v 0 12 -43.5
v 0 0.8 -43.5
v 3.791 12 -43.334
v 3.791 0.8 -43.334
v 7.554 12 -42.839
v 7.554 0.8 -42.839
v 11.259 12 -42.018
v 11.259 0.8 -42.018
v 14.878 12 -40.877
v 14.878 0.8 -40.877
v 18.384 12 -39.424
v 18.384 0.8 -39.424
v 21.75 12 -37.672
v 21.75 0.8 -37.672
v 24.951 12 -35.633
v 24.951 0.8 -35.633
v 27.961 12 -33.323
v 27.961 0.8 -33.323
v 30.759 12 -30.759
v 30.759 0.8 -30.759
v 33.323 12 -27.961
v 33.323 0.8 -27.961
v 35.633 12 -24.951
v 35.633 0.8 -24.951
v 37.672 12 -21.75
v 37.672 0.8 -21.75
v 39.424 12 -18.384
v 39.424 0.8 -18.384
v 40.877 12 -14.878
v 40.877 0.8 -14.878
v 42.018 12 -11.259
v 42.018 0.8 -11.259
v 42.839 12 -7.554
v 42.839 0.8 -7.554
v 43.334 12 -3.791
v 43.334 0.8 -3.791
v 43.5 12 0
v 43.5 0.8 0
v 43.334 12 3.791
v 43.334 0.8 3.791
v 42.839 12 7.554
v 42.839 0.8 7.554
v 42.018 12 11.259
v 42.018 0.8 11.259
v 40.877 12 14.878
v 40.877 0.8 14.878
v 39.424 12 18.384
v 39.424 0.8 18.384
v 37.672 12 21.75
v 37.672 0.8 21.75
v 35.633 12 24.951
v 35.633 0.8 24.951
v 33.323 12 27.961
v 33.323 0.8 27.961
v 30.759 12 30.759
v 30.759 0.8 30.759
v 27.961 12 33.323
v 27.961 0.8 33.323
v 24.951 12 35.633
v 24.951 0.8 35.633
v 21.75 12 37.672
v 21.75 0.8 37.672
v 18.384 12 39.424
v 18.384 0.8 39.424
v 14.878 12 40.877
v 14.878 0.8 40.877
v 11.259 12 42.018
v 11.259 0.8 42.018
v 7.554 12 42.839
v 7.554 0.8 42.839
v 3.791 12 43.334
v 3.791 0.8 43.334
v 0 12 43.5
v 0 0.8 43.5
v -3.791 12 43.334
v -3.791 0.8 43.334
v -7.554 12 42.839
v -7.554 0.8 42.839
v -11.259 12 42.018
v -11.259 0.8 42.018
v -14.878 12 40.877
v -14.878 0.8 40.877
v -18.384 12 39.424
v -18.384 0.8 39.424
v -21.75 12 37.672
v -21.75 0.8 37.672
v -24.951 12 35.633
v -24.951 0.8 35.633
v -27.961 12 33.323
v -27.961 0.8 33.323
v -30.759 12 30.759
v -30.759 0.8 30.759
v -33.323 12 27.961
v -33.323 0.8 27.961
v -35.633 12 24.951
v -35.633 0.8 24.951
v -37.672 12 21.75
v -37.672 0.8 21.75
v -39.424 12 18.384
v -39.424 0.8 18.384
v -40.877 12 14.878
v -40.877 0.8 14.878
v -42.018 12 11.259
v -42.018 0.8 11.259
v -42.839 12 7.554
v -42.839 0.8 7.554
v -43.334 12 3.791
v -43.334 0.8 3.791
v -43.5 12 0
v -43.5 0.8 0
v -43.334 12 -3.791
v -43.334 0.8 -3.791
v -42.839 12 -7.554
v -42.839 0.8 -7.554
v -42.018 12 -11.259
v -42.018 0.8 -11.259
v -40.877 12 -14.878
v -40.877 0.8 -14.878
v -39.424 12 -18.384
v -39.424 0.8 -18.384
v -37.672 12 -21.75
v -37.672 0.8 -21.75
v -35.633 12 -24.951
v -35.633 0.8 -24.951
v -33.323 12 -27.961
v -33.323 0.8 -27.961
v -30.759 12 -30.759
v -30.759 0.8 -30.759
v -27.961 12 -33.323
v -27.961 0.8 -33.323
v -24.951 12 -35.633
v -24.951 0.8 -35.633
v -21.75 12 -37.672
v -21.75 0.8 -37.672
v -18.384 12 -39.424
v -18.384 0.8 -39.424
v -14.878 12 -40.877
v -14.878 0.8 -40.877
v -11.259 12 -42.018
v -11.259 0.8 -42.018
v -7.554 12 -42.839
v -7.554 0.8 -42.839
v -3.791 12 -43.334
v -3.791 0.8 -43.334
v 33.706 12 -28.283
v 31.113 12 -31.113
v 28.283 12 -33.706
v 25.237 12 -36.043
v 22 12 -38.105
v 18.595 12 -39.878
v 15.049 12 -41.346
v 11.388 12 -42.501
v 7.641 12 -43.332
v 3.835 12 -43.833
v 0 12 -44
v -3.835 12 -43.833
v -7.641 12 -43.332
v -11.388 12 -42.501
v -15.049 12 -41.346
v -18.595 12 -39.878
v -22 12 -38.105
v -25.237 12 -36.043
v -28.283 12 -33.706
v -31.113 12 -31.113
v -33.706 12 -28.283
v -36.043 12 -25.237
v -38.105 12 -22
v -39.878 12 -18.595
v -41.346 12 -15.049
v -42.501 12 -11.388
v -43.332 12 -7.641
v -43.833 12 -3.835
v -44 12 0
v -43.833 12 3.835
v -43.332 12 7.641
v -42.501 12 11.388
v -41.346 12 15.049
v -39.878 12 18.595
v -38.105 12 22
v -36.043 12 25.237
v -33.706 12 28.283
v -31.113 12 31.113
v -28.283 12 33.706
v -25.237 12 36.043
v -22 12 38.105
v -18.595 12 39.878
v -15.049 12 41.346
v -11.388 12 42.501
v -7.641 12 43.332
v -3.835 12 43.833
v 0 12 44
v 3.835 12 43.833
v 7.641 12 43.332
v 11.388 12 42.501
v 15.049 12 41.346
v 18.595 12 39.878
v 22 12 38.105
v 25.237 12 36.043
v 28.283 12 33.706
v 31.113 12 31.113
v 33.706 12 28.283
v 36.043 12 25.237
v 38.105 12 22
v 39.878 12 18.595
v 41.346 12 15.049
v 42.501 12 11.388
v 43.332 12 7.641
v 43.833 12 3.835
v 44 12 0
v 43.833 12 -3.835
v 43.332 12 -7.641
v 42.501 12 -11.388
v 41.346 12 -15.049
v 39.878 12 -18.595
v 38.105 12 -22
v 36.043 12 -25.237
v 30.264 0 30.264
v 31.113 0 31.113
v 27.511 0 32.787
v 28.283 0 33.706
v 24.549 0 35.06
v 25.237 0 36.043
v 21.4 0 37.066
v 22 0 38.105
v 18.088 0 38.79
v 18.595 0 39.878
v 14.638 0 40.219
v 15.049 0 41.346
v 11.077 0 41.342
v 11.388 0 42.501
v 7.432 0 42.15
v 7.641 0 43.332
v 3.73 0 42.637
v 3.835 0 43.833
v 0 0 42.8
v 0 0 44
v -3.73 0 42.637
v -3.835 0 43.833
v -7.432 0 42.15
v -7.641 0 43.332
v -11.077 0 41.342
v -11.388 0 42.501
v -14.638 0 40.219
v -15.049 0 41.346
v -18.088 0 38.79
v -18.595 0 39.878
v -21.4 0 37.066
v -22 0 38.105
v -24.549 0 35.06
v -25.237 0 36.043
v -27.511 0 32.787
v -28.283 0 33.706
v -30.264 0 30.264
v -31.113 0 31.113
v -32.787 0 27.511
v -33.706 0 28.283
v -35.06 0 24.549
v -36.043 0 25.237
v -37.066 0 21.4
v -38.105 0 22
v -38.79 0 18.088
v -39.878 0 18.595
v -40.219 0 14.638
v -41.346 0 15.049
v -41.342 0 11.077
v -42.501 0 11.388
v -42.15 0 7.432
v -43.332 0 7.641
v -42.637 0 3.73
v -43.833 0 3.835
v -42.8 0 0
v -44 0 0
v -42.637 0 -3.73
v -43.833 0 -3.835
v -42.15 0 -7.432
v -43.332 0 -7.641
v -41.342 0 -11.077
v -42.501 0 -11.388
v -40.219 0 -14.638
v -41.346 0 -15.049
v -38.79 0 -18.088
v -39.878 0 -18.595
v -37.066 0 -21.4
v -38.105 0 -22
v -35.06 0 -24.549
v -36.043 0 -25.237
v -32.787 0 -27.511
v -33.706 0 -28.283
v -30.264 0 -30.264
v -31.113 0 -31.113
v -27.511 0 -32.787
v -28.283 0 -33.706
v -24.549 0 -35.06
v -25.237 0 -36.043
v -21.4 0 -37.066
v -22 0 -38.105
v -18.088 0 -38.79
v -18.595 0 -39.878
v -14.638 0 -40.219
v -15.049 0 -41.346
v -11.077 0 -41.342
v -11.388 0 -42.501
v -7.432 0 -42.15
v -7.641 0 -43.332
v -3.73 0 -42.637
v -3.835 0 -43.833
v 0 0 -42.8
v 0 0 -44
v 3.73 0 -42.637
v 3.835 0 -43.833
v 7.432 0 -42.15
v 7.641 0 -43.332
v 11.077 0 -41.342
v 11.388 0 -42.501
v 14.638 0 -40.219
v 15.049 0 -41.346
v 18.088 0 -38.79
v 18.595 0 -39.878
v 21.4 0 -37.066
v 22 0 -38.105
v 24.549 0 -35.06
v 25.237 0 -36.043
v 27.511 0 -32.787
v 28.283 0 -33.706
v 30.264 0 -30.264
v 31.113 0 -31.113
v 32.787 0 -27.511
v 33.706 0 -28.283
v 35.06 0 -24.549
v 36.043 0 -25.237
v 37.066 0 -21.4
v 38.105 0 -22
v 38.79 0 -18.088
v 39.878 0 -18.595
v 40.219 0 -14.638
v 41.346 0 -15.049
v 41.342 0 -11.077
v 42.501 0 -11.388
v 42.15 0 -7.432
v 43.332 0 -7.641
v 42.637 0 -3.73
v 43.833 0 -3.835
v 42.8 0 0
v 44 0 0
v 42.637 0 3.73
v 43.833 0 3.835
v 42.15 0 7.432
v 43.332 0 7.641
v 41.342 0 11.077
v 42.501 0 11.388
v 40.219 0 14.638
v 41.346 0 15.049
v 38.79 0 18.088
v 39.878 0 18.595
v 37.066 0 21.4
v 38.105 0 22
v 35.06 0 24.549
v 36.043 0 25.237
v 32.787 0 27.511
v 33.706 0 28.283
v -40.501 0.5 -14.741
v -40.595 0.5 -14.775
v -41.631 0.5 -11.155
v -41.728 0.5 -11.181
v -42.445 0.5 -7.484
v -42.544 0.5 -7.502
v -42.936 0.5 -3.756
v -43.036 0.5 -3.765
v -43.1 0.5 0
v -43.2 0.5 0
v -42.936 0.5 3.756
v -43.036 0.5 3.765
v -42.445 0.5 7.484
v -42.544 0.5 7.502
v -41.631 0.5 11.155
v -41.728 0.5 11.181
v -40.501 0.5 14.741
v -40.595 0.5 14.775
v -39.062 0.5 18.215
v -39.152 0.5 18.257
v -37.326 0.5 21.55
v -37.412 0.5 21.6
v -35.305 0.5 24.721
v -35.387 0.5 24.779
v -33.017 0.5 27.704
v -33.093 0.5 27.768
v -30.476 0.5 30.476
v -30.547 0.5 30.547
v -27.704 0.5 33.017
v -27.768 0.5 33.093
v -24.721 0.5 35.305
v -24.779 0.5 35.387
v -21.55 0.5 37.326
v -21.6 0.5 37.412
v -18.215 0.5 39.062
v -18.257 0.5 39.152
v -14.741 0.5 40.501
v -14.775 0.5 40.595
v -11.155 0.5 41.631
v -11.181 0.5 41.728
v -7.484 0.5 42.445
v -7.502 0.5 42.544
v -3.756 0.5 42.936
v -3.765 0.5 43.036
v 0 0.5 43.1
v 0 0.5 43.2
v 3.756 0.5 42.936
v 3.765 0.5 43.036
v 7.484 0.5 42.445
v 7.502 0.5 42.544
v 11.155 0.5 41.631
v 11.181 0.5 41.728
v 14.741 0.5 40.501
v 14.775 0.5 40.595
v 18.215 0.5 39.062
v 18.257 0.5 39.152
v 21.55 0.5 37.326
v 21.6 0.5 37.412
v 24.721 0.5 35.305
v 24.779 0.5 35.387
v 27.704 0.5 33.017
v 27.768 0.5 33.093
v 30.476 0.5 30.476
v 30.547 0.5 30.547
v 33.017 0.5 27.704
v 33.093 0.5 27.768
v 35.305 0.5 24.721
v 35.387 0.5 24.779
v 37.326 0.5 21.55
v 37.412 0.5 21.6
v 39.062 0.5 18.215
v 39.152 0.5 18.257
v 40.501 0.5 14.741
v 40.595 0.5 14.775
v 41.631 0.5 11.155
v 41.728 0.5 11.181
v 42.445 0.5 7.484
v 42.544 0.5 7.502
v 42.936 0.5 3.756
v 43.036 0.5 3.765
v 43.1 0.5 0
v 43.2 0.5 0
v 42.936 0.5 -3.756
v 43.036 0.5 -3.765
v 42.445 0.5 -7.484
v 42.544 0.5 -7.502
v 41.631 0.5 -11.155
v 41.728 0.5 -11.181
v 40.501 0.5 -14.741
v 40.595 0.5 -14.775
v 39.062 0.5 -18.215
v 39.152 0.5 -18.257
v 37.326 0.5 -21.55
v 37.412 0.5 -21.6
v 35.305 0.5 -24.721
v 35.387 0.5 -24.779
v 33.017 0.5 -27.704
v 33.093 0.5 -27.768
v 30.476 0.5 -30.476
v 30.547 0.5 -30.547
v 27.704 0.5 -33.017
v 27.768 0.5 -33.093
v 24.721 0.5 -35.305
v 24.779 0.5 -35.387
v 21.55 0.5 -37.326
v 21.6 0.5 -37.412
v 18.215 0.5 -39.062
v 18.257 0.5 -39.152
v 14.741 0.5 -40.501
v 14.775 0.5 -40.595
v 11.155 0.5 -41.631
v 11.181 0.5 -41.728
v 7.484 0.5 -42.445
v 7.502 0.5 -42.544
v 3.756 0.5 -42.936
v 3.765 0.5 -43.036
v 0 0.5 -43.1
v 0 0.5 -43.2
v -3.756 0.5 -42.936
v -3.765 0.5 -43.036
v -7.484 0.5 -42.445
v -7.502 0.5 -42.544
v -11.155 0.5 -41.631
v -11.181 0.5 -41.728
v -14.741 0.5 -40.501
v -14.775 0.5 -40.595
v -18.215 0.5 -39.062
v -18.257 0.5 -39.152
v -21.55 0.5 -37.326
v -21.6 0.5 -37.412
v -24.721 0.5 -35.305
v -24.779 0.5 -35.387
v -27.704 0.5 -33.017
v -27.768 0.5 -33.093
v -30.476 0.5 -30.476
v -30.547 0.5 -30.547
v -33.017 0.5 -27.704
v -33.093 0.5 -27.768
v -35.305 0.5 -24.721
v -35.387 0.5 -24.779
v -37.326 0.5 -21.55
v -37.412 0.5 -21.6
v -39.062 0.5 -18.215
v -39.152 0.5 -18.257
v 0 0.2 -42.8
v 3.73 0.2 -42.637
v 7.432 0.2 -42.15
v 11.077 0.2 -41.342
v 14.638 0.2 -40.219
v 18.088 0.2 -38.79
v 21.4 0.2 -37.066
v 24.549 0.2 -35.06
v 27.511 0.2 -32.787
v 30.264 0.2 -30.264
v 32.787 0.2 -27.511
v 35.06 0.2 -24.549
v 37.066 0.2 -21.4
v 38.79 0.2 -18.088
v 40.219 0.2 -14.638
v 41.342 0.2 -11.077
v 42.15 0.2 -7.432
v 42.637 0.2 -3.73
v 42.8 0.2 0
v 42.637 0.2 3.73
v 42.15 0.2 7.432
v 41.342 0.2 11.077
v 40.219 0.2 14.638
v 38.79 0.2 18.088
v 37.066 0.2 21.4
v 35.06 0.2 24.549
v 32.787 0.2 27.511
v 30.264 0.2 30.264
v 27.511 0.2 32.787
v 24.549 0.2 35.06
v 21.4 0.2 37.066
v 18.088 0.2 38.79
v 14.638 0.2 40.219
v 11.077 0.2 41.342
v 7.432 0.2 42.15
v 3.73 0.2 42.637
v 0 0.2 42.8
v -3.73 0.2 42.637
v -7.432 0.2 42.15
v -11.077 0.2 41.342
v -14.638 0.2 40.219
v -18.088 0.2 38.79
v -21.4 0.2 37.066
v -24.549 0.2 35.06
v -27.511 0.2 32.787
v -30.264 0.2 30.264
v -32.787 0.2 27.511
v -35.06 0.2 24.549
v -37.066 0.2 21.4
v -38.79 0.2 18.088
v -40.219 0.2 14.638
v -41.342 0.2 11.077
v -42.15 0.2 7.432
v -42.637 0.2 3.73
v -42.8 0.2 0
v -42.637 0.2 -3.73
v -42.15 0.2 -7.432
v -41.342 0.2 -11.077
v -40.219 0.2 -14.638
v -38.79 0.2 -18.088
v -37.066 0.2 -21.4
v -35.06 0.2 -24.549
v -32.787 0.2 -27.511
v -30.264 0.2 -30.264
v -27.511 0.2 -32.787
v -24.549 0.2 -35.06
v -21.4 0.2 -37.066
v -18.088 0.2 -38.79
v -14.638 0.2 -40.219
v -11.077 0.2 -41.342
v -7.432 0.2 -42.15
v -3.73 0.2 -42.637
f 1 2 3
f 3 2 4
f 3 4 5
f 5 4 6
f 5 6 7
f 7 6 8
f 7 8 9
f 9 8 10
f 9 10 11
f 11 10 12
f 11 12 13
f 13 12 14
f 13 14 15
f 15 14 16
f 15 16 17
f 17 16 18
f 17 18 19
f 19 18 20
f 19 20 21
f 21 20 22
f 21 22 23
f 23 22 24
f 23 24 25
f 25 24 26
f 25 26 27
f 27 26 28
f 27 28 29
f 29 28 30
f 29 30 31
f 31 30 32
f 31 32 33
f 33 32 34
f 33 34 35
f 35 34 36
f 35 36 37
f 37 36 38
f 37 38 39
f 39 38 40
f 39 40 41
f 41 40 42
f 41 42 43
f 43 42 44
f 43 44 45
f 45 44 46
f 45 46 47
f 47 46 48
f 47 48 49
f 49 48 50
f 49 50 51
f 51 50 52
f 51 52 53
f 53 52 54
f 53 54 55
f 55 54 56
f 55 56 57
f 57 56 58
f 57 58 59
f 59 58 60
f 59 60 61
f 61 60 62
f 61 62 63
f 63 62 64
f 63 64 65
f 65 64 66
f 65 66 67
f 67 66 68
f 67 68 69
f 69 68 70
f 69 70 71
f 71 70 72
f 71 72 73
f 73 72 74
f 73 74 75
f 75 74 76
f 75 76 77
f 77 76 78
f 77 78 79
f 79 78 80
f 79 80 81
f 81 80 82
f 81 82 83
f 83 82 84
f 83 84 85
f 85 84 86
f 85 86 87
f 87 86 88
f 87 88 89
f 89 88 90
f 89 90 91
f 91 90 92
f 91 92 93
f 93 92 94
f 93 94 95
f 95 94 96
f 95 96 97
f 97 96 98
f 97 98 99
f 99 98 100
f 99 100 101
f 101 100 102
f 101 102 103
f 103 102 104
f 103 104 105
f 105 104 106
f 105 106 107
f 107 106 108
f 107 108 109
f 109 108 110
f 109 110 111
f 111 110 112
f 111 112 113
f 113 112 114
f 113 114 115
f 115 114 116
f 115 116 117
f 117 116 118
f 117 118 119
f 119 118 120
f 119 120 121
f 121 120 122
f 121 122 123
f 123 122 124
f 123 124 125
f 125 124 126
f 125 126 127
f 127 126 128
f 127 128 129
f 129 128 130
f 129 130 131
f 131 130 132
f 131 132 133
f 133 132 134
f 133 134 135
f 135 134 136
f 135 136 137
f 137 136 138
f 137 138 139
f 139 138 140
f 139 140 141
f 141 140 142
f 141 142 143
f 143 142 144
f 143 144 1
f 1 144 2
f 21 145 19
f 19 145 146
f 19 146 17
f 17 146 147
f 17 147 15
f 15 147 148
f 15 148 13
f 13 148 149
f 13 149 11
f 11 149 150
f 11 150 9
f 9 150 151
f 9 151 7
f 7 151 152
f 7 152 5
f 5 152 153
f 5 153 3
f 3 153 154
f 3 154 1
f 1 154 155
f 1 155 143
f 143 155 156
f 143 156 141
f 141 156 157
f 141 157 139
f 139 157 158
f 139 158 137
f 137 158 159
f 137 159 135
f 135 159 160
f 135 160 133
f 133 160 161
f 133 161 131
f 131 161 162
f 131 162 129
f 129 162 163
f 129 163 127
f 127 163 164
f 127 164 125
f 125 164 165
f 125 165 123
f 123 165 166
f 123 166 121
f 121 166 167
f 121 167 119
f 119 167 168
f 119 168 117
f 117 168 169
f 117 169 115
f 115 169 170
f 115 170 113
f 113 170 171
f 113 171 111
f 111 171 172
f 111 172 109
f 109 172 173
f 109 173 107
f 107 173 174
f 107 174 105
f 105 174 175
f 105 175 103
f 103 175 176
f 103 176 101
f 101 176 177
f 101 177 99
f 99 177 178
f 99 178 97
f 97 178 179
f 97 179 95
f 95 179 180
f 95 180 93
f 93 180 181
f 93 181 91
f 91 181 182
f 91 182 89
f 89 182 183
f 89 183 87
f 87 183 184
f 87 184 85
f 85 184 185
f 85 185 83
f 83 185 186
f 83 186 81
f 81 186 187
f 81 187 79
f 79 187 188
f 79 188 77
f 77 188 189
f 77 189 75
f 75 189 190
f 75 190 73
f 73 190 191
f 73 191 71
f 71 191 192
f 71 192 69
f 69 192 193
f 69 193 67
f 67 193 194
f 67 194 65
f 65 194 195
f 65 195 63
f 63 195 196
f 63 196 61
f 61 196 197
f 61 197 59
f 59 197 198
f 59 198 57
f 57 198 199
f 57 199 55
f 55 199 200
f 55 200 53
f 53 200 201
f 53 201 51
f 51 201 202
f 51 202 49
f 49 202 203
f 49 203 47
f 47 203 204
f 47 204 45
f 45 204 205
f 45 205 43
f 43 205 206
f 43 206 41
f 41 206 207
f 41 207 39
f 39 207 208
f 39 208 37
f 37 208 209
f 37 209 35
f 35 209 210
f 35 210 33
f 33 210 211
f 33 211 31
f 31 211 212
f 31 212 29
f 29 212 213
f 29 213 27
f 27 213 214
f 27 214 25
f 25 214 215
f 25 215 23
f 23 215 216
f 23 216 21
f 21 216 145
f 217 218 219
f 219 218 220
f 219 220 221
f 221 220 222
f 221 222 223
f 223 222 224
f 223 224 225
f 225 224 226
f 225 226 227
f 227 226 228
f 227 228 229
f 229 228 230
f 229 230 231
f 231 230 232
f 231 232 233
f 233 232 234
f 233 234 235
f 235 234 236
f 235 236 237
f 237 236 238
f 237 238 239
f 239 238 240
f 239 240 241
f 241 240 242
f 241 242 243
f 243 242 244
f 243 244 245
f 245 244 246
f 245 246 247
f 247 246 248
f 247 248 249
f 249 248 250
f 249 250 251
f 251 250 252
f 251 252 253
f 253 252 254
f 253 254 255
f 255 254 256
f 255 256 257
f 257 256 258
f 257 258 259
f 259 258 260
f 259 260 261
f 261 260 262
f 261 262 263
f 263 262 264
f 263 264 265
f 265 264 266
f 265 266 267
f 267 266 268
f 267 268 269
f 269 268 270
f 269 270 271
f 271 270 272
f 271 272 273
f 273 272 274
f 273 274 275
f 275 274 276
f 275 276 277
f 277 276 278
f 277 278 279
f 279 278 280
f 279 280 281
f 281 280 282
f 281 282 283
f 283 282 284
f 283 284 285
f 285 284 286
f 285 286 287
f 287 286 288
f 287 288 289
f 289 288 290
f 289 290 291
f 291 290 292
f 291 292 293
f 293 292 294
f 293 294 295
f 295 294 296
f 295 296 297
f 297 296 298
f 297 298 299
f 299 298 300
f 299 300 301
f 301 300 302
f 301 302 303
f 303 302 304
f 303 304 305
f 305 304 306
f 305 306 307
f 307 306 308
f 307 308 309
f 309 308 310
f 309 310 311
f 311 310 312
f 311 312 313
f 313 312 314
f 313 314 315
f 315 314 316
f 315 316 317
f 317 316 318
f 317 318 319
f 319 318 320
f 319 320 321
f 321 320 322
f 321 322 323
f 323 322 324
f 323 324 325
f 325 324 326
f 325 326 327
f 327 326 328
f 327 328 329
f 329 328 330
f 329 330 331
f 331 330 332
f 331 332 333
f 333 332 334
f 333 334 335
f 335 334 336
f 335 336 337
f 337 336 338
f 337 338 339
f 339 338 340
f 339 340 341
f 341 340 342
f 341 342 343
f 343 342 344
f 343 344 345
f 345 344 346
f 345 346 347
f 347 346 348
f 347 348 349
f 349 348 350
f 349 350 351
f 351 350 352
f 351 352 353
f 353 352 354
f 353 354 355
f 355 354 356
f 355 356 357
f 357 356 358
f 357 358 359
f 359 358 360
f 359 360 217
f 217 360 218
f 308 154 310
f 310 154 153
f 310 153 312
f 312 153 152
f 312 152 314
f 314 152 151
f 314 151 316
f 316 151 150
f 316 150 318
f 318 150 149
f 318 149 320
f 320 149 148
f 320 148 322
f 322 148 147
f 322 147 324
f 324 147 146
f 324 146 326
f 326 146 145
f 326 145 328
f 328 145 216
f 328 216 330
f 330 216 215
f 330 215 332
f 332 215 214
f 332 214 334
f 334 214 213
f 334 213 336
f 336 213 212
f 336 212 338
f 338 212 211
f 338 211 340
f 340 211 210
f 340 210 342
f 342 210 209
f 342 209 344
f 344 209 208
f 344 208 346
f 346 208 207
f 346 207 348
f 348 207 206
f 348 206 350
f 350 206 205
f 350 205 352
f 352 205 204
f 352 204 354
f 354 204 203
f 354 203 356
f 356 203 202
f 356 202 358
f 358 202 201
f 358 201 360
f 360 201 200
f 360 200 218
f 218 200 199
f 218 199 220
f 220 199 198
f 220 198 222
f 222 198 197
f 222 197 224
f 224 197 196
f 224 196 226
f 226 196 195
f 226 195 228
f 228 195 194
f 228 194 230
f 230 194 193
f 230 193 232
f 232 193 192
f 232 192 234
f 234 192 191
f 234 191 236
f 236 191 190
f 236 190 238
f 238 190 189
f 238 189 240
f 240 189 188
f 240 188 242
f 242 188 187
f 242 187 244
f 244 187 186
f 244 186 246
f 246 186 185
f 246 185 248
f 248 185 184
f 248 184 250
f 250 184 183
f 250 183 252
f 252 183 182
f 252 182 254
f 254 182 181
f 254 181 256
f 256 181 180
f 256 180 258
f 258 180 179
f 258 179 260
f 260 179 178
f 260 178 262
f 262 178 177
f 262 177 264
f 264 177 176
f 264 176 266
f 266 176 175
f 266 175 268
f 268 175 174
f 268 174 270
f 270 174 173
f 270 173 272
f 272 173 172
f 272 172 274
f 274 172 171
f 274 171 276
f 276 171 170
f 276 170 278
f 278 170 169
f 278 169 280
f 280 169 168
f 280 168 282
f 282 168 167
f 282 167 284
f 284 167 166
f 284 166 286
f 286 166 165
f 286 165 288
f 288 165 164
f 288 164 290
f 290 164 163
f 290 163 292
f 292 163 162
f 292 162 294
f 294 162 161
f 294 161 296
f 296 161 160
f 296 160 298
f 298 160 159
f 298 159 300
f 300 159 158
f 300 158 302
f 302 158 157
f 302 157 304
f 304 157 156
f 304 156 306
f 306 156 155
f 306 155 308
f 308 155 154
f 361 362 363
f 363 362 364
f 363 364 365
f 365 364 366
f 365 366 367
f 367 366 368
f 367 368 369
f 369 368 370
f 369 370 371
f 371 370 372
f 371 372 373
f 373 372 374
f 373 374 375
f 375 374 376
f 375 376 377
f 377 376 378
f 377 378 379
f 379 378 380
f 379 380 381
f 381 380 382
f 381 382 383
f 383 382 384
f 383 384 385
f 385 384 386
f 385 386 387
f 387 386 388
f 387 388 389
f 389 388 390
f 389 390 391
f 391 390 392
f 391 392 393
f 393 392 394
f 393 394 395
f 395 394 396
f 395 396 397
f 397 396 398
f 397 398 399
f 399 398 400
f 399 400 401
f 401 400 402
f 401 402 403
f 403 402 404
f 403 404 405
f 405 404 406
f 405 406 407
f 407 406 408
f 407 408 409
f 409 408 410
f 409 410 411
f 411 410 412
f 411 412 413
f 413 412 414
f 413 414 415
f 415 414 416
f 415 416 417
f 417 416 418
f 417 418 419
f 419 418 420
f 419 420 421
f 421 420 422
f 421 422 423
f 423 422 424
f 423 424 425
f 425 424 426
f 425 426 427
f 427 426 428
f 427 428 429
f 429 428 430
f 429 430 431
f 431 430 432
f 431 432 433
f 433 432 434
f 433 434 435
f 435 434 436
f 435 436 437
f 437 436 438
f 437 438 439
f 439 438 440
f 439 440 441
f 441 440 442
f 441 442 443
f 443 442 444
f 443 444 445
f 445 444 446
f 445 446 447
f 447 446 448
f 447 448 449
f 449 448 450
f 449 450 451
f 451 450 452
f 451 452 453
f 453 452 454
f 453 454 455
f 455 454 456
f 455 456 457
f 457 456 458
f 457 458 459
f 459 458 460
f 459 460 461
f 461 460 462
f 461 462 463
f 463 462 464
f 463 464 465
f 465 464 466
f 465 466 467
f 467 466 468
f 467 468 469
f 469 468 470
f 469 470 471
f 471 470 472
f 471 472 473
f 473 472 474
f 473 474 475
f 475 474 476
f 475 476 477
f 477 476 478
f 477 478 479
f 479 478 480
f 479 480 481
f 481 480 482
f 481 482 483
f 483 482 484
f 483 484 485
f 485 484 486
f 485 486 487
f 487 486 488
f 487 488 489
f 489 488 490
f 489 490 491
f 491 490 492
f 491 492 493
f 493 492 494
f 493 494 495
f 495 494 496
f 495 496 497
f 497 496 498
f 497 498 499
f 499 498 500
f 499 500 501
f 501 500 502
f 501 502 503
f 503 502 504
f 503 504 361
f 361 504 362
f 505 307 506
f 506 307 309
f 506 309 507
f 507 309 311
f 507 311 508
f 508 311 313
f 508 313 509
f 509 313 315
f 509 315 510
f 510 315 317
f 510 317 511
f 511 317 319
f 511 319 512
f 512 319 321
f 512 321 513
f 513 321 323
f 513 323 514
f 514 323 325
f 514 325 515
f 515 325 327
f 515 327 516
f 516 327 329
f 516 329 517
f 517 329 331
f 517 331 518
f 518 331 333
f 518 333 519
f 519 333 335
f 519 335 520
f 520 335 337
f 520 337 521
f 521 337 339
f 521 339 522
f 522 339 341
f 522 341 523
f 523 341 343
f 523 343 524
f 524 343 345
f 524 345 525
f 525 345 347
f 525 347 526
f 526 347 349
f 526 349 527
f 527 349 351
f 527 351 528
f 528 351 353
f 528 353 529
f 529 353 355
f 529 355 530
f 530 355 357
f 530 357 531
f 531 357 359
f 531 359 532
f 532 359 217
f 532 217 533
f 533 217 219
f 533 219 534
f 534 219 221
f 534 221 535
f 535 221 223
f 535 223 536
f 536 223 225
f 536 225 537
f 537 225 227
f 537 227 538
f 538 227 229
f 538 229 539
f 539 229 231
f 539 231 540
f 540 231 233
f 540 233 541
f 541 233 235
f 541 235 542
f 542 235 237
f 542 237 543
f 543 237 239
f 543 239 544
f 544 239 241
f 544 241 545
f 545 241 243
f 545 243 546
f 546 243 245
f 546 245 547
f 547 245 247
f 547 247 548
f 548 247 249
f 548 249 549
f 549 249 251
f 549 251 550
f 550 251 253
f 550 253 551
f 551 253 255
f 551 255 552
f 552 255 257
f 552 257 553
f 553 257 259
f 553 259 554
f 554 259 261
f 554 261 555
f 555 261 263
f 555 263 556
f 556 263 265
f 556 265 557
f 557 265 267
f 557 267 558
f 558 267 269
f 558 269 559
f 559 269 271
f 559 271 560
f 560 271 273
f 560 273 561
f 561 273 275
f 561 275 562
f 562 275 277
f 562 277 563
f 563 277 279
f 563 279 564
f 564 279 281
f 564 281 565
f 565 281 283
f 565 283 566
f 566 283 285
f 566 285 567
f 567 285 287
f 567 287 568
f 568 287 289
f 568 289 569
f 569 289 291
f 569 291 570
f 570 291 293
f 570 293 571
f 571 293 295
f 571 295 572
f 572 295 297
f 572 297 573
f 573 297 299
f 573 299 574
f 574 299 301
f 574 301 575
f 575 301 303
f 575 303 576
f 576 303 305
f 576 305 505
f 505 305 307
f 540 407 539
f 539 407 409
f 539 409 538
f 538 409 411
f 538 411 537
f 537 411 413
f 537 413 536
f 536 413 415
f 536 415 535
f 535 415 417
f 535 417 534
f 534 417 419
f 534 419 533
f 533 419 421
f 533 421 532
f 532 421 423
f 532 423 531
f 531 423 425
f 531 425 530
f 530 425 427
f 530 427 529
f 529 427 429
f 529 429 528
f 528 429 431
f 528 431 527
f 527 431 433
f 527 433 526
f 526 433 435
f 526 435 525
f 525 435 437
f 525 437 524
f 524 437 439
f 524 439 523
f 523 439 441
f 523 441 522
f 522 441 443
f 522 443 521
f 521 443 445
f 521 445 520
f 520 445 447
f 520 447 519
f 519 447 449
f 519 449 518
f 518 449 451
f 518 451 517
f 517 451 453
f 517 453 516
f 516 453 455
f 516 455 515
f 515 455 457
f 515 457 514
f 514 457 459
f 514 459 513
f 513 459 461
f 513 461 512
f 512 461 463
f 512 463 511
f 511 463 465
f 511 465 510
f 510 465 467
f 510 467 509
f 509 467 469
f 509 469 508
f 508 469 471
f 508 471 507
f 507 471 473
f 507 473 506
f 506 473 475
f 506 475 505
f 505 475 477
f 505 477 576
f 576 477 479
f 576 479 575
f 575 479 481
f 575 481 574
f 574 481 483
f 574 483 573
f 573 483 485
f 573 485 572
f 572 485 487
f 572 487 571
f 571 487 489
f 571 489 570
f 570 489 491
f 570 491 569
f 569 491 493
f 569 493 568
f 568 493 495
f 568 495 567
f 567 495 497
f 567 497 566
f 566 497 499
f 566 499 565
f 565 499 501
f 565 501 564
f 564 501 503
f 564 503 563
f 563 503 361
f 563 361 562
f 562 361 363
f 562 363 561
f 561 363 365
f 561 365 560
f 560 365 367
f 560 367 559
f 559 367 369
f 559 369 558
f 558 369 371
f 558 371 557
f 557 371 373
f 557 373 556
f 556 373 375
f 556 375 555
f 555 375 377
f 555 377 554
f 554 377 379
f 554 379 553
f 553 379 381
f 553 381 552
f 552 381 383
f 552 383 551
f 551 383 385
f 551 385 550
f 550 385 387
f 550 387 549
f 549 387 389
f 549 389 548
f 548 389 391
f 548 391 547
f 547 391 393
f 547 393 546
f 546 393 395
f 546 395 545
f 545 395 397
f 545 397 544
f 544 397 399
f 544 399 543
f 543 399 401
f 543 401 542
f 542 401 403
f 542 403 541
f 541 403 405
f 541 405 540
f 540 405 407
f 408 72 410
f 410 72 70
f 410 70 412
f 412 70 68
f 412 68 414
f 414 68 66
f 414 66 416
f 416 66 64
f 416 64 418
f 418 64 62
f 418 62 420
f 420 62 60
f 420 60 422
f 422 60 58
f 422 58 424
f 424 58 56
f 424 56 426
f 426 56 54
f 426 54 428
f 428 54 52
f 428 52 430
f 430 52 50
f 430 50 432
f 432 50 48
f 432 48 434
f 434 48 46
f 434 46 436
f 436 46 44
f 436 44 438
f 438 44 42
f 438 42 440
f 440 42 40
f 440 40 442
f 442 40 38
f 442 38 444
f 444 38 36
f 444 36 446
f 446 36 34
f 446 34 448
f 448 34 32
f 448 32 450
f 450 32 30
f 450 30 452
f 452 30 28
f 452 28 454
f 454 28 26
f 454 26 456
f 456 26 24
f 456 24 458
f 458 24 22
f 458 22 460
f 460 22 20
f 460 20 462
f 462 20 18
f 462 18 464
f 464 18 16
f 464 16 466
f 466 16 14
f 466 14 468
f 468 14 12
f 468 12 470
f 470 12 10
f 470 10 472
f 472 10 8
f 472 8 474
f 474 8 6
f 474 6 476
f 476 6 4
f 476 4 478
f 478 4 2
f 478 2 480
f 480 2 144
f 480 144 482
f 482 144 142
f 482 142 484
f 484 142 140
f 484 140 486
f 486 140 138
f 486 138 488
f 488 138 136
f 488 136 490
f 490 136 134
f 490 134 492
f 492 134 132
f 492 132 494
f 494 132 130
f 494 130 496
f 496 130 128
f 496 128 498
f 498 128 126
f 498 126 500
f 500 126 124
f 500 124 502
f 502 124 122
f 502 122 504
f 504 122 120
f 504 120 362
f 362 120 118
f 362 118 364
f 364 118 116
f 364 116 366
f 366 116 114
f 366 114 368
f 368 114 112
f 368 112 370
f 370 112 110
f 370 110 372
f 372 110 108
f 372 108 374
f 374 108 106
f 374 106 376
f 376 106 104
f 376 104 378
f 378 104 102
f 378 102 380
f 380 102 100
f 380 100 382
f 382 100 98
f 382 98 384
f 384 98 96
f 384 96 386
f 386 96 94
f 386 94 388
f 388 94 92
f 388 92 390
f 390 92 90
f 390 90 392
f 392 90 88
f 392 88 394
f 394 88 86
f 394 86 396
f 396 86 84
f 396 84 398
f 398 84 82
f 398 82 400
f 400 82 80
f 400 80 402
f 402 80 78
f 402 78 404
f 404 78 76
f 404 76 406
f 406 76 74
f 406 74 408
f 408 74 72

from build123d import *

# Parameters (mm, degrees)
CROQUIS1_R              = 44
CROQUIS1_R_2            = 43.5
SALIENTE_EXTRUIR1_DEPTH = 12
CROQUIS2_R              = 44
CROQUIS2_R_2            = 42.8
SALIENTE_EXTRUIR2_DEPTH = 0.5
CHAFL_N1_SIZE           = 0.3


with BuildPart() as part:
    # Croquis1 → Saliente-Extruir1 (new body)
    with BuildSketch(Plane(origin=(0, 0, 0), x_dir=(1, 0, 0), z_dir=(0, 1, 0))):
        with Locations(Location((0, 0, 0), (0, 0, 270))):
            Circle(CROQUIS1_R)
        with Locations(Location((0, 0, 0), (0, 0, 270))):
            Circle(CROQUIS1_R_2, mode=Mode.SUBTRACT)
    extrude(amount=SALIENTE_EXTRUIR1_DEPTH)

    # Croquis2 → Saliente-Extruir2 (add)
    with BuildSketch(Plane.XZ):
        with Locations(Location((0, 0, 0), (0, 0, 90))):
            Circle(CROQUIS2_R)
        with Locations(Location((0, 0, 0), (0, 0, 270))):
            Circle(CROQUIS2_R_2, mode=Mode.SUBTRACT)
    extrude(amount=-SALIENTE_EXTRUIR2_DEPTH)

    # Chaflán1
    chafl_n1_edges = [part.edges().sort_by_distance(p)[0] for p in [
        (0, 0.5, 42.8),
        (0, 0.5, -43.5),
    ]]
    chamfer(chafl_n1_edges, length=CHAFL_N1_SIZE)


solid = part.part
